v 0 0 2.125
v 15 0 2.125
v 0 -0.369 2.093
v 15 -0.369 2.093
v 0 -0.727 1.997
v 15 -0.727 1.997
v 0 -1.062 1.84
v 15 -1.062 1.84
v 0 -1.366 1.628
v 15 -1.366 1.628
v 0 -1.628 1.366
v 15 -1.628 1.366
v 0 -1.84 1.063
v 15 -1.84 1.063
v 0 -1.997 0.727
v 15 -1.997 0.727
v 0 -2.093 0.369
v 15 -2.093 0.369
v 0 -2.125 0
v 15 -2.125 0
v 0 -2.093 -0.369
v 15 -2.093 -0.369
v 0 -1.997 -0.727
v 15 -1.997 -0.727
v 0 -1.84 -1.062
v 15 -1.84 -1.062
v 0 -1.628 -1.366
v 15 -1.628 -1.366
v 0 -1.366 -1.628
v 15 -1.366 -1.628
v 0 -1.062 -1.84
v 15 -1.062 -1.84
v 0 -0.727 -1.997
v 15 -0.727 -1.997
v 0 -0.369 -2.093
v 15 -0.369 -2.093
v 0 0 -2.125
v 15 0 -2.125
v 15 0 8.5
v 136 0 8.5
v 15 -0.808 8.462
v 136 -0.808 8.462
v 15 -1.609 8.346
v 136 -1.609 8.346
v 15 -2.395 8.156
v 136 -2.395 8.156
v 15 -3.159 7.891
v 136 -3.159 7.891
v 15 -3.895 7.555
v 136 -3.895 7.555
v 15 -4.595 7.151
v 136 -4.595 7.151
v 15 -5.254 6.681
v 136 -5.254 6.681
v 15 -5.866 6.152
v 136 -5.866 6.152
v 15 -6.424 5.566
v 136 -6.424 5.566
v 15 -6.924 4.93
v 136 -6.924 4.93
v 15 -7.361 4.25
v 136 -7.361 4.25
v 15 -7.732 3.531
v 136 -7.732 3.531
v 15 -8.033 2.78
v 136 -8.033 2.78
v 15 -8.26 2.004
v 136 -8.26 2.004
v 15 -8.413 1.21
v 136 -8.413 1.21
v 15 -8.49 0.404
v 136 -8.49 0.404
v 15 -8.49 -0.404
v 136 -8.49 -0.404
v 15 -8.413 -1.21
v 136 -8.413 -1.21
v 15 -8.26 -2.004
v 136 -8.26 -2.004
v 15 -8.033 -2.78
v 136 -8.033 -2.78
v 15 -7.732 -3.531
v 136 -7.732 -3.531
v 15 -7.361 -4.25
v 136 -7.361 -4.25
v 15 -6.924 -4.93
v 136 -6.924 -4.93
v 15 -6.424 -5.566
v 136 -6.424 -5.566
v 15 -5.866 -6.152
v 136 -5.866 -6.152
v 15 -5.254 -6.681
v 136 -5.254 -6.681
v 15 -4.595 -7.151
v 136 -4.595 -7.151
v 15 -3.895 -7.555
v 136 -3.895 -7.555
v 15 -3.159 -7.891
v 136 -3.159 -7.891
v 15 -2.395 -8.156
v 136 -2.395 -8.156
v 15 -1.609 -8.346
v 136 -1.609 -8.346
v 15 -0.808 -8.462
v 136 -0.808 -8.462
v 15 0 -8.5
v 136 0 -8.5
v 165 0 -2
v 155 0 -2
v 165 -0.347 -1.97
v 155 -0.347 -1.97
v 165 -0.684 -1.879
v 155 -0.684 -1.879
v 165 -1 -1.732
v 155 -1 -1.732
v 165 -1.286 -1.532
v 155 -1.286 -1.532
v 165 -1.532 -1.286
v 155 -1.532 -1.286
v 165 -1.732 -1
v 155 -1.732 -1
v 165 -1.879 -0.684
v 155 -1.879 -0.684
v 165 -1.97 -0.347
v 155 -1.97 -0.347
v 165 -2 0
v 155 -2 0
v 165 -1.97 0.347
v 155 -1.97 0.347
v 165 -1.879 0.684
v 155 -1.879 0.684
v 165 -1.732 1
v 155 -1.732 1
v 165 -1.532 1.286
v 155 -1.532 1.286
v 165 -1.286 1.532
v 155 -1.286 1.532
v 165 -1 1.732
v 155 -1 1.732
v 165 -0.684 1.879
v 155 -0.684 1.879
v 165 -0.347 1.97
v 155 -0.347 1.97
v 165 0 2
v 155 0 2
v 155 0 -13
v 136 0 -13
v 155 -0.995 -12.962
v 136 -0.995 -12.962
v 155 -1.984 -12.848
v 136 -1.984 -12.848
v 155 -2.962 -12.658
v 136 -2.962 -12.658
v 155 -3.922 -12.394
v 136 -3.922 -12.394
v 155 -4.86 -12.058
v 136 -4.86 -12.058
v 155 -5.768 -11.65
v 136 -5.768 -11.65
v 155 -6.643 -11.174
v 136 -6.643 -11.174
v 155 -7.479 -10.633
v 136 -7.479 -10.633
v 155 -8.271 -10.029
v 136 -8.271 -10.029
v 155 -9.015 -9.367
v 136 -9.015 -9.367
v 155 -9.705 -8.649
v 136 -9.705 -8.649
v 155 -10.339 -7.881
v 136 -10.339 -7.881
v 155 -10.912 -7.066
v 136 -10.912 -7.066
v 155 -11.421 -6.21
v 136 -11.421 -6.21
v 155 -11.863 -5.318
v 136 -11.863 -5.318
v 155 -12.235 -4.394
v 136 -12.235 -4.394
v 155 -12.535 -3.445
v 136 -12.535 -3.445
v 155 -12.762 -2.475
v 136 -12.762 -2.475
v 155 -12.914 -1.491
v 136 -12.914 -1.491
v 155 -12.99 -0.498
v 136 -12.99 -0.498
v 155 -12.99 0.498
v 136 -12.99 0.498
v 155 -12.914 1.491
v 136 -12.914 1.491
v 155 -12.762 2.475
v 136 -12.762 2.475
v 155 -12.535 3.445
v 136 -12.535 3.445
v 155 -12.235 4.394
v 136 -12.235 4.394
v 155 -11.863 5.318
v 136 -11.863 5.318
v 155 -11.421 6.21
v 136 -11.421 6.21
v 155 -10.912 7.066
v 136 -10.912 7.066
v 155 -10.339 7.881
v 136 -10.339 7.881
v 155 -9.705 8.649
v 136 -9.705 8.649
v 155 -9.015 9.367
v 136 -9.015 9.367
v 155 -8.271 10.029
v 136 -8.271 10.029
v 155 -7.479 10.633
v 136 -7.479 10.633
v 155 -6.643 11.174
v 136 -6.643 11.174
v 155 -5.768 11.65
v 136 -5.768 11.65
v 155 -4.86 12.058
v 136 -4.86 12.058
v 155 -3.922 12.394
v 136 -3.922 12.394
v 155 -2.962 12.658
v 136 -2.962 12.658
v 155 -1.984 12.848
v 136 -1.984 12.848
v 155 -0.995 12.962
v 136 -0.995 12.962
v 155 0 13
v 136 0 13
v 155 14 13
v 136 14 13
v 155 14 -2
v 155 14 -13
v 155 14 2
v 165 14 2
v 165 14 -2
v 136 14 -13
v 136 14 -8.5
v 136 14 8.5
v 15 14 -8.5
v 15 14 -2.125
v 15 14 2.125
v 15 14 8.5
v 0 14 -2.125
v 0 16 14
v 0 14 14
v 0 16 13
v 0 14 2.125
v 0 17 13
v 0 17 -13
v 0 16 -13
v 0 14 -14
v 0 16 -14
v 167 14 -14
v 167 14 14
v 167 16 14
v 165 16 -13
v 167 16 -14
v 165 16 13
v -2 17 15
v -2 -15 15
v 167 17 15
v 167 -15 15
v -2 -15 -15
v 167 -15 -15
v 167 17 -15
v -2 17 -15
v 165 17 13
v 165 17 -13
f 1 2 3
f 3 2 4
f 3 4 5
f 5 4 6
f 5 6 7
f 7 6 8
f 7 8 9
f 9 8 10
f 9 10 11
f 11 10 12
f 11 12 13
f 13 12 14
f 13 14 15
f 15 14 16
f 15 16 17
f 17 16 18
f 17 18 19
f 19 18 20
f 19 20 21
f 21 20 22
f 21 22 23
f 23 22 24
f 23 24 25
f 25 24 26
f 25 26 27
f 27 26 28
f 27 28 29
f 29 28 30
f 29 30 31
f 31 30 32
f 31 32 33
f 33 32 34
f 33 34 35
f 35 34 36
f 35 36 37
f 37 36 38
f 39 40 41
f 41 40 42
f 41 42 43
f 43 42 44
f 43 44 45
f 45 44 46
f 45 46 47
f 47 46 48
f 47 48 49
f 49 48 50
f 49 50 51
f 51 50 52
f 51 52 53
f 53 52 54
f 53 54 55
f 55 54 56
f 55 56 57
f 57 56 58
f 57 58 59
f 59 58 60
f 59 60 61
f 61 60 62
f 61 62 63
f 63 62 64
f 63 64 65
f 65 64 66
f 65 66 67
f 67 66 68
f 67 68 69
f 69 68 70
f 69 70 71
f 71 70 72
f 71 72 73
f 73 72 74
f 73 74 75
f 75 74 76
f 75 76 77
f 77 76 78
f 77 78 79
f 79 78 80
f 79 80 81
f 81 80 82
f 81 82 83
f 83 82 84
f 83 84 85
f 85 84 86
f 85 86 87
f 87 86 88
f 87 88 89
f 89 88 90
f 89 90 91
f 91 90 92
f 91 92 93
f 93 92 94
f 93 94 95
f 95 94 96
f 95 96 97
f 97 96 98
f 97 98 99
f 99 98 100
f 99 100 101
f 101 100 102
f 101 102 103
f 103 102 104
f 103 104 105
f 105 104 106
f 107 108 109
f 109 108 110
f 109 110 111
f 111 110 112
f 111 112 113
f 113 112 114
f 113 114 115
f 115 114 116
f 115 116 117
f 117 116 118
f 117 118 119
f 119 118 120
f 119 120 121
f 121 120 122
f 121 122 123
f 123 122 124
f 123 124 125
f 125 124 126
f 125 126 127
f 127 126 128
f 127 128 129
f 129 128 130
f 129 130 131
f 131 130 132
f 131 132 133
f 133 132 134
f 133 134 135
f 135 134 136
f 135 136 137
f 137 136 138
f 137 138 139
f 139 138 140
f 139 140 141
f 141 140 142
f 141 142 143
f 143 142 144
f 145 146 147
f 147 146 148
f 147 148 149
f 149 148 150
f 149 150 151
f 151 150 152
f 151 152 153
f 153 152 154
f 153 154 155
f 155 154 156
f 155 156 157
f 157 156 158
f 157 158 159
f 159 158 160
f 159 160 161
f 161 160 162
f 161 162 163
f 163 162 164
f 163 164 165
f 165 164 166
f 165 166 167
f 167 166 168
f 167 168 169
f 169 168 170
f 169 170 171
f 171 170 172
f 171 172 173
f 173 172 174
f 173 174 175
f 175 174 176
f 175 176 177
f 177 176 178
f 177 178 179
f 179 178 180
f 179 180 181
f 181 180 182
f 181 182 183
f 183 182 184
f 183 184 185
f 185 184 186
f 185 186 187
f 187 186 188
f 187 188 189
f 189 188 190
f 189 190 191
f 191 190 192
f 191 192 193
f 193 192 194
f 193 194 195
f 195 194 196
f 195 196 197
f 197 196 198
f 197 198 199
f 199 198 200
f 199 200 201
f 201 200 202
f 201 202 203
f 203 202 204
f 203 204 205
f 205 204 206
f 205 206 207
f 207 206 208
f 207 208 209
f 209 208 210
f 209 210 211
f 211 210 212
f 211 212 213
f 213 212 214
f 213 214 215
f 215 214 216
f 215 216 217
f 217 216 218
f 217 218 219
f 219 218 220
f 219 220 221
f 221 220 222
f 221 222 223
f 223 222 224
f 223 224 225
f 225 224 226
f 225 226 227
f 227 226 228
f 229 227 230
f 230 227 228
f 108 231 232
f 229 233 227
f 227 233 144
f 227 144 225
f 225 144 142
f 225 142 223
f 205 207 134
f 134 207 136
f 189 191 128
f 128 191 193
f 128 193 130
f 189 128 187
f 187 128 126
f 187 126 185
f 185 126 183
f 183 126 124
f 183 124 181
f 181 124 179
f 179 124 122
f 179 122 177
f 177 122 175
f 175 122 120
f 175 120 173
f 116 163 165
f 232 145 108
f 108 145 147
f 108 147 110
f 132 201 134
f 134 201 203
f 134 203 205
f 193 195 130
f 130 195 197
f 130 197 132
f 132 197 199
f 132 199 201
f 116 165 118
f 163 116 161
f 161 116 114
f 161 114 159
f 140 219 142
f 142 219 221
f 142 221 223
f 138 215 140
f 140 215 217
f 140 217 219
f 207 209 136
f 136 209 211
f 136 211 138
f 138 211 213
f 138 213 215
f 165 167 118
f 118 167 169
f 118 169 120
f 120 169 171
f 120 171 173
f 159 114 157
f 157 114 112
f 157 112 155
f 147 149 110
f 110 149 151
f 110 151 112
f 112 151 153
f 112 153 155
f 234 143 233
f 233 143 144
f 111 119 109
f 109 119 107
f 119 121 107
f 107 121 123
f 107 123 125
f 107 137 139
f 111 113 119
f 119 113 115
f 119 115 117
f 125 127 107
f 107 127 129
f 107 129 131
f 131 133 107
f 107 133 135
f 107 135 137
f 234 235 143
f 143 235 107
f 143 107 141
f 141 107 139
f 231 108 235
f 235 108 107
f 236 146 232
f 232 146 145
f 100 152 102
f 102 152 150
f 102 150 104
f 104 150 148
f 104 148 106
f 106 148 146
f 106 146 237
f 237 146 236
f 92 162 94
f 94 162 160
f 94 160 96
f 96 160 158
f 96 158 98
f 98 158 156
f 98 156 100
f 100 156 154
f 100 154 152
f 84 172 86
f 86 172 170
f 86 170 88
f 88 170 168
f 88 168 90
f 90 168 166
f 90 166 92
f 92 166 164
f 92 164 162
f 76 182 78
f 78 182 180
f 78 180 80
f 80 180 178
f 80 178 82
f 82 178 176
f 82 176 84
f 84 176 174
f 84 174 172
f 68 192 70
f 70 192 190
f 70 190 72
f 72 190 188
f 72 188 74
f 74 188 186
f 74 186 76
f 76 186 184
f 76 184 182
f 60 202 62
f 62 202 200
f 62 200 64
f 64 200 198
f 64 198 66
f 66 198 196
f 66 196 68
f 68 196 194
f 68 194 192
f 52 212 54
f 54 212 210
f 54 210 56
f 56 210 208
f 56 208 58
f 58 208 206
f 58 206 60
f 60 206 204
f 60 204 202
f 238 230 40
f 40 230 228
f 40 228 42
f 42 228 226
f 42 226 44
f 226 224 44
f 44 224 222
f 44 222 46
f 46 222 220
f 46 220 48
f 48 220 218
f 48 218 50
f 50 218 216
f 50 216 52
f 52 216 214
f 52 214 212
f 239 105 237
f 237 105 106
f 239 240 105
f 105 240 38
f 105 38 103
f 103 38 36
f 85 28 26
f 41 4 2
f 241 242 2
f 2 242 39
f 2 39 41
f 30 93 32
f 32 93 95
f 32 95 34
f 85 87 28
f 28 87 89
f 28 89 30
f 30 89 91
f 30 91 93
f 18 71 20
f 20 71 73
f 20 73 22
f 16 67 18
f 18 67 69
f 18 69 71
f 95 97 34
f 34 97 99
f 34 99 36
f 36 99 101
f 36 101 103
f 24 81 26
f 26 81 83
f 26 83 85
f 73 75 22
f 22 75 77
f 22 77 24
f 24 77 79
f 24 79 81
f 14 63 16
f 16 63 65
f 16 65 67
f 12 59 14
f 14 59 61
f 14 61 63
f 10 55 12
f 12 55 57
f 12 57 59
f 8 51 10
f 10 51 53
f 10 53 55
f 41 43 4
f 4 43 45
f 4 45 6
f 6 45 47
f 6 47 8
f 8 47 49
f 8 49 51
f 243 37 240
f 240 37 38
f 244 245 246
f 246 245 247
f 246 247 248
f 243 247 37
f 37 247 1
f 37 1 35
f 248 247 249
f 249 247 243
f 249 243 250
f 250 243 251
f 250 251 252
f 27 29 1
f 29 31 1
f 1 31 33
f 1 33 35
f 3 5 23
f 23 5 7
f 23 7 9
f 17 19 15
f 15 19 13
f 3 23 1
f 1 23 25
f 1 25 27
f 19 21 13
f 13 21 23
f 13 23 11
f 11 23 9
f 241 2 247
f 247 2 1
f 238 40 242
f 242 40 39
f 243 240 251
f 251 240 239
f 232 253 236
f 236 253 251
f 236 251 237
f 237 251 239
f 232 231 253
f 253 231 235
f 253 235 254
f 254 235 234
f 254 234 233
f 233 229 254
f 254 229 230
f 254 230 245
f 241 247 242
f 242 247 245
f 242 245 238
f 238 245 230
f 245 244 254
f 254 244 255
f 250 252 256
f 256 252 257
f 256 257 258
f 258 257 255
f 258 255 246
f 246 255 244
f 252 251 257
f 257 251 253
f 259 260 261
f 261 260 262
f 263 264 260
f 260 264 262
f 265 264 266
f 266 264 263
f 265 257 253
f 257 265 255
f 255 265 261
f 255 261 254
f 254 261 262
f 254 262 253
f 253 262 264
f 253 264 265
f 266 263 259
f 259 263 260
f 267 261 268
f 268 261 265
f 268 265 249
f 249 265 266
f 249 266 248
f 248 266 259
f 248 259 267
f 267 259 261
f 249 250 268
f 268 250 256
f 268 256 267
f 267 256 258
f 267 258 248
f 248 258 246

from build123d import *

# Parameters (mm, degrees)
BOSS_EXTRUDE1_DEPTH = 165
SKETCH3_W           = 30
SKETCH3_H           = 32
BOSS_EXTRUDE2_DEPTH = 2
SKETCH4_W           = 30
SKETCH4_H           = 32
BOSS_EXTRUDE3_DEPTH = 2
BOSS_EXTRUDE4_START = 10
BOSS_EXTRUDE4_DEPTH = 10
CUT_EXTRUDE1_DEPTH  = 10
BOSS_EXTRUDE6_DEPTH = 15
CUT_EXTRUDE2_DEPTH  = 15
BOSS_EXTRUDE7_DEPTH = 121
CUT_EXTRUDE3_DEPTH  = 121
SKETCH13_W          = 169
SKETCH13_H          = 30
CUT_EXTRUDE5_DEPTH  = 3
SKETCH14_W          = 169
SKETCH14_H          = 30
BOSS_EXTRUDE8_DEPTH = 3
SKETCH12_W          = 28
SKETCH12_H          = 2
CUT_EXTRUDE6_DEPTH  = 167
SKETCH16_W          = 165
SKETCH16_H          = 26
CUT_EXTRUDE7_DEPTH  = 3


with BuildPart() as part:
    # Sketch2 → Boss-Extrude1 (new body)
    with BuildSketch(Plane(origin=(0, 0, 0), x_dir=(0, 0, -1), z_dir=(1, 0, 0))):
        with BuildLine():
            Line((-13, 0), (-13, 17))
            Line((-13, 17), (-15, 17))
            Line((-15, 17), (-15, -15))
            Line((-15, -15), (15, -15))
            Line((15, -15), (15, 17))
            Line((15, 17), (13, 17))
            Line((13, 17), (13, 0))
            ThreePointArc((13, 0), (0, -13), (-13, 0))
        make_face()
    extrude(amount=BOSS_EXTRUDE1_DEPTH)

    # Sketch3 → Boss-Extrude2 (add)
    with BuildSketch(Plane(origin=(165, 0, 0), x_dir=(0, 0, -1), z_dir=(1, 0, 0))):
        with Locations((0, 1)):
            Rectangle(SKETCH3_W, SKETCH3_H)
    extrude(amount=BOSS_EXTRUDE2_DEPTH)

    # Sketch4 → Boss-Extrude3 (add)
    with BuildSketch(Plane.ZY):
        with Locations((0, 1)):
            Rectangle(SKETCH4_W, SKETCH4_H)
    extrude(amount=BOSS_EXTRUDE3_DEPTH)

    # Sketch5 → Boss-Extrude4 (add)
    with BuildSketch(Plane.ZY.offset(-165).offset(BOSS_EXTRUDE4_START)):
        with BuildLine():
            Line((-13, 17), (-13, 0))
            ThreePointArc((-13, 0), (0, -13), (13, 0))
            Line((13, 0), (13, 17))
            Line((13, 17), (-13, 17))
        make_face()
    extrude(amount=-BOSS_EXTRUDE4_DEPTH)

    # Sketch6 → Cut-Extrude1 (cut)
    with BuildSketch(Plane.ZY.offset(-155)):
        with BuildLine():
            Line((-2, 0), (-2, 17))
            Line((-2, 17), (2, 17))
            Line((2, 17), (2, 0))
            ThreePointArc((2, 0), (0, -2), (-2, 0))
        make_face()
    extrude(amount=-CUT_EXTRUDE1_DEPTH, mode=Mode.SUBTRACT)

    # Sketch8 → Boss-Extrude6 (add)
    with BuildSketch(Plane(origin=(0, 0, 0), x_dir=(0, 0, -1), z_dir=(1, 0, 0))):
        with BuildLine():
            Line((13, 0), (13, 17))
            Line((13, 17), (-13, 17))
            Line((-13, 17), (-13, 0))
            ThreePointArc((-13, 0), (0, -13), (13, 0))
        make_face()
    extrude(amount=BOSS_EXTRUDE6_DEPTH)

    # Sketch9 → Cut-Extrude2 (cut)
    with BuildSketch(Plane(origin=(15, 0, 0), x_dir=(0, 0, -1), z_dir=(1, 0, 0))):
        with BuildLine():
            Line((-2.125, 0), (-2.125, 17))
            Line((-2.125, 17), (2.125, 17))
            Line((2.125, 17), (2.125, 0))
            ThreePointArc((2.125, 0), (0, -2.125), (-2.125, 0))
        make_face()
    extrude(amount=-CUT_EXTRUDE2_DEPTH, mode=Mode.SUBTRACT)

    # Sketch10 → Boss-Extrude7 (add)
    with BuildSketch(Plane(origin=(15, 0, 0), x_dir=(0, 0, -1), z_dir=(1, 0, 0))):
        with BuildLine():
            Line((13, 0), (13, 17))
            Line((13, 17), (-13, 17))
            Line((-13, 17), (-13, 0))
            ThreePointArc((-13, 0), (0, -13), (13, 0))
        make_face()
    extrude(amount=BOSS_EXTRUDE7_DEPTH)

    # Sketch11 → Cut-Extrude3 (cut)
    with BuildSketch(Plane(origin=(136, 0, 0), x_dir=(0, 0, -1), z_dir=(1, 0, 0))):
        with BuildLine():
            Line((-8.5, 0), (-8.5, 17))
            Line((-8.5, 17), (8.5, 17))
            Line((8.5, 17), (8.5, 0))
            ThreePointArc((8.5, 0), (0, -8.5), (-8.5, 0))
        make_face()
    extrude(amount=-CUT_EXTRUDE3_DEPTH, mode=Mode.SUBTRACT)

    # Sketch13 → Cut-Extrude5 (cut)
    with BuildSketch(Plane(origin=(0, 17, 0), x_dir=(1, 0, 0), z_dir=(0, 1, 0))):
        with Locations((82.5, 0)):
            Rectangle(SKETCH13_W, SKETCH13_H)
    extrude(amount=-CUT_EXTRUDE5_DEPTH, mode=Mode.SUBTRACT)

    # Sketch14 → Boss-Extrude8 (add)
    with BuildSketch(Plane(origin=(0, 14, 0), x_dir=(1, 0, 0), z_dir=(0, 1, 0))):
        with Locations((82.5, 0)):
            Rectangle(SKETCH14_W, SKETCH14_H)
    extrude(amount=BOSS_EXTRUDE8_DEPTH)

    # Sketch12 → Cut-Extrude6 (cut)
    with BuildSketch(Plane(origin=(167, 0, 0), x_dir=(0, 0, -1), z_dir=(1, 0, 0))):
        with Locations((0, 15)):
            Rectangle(SKETCH12_W, SKETCH12_H)
    extrude(amount=-CUT_EXTRUDE6_DEPTH, mode=Mode.SUBTRACT)

    # Sketch16 → Cut-Extrude7 (cut)
    with BuildSketch(Plane(origin=(0, 17, 0), x_dir=(1, 0, 0), z_dir=(0, 1, 0))):
        with Locations((82.5, 0)):
            Rectangle(SKETCH16_W, SKETCH16_H)
    extrude(amount=-CUT_EXTRUDE7_DEPTH, mode=Mode.SUBTRACT)


solid = part.part
